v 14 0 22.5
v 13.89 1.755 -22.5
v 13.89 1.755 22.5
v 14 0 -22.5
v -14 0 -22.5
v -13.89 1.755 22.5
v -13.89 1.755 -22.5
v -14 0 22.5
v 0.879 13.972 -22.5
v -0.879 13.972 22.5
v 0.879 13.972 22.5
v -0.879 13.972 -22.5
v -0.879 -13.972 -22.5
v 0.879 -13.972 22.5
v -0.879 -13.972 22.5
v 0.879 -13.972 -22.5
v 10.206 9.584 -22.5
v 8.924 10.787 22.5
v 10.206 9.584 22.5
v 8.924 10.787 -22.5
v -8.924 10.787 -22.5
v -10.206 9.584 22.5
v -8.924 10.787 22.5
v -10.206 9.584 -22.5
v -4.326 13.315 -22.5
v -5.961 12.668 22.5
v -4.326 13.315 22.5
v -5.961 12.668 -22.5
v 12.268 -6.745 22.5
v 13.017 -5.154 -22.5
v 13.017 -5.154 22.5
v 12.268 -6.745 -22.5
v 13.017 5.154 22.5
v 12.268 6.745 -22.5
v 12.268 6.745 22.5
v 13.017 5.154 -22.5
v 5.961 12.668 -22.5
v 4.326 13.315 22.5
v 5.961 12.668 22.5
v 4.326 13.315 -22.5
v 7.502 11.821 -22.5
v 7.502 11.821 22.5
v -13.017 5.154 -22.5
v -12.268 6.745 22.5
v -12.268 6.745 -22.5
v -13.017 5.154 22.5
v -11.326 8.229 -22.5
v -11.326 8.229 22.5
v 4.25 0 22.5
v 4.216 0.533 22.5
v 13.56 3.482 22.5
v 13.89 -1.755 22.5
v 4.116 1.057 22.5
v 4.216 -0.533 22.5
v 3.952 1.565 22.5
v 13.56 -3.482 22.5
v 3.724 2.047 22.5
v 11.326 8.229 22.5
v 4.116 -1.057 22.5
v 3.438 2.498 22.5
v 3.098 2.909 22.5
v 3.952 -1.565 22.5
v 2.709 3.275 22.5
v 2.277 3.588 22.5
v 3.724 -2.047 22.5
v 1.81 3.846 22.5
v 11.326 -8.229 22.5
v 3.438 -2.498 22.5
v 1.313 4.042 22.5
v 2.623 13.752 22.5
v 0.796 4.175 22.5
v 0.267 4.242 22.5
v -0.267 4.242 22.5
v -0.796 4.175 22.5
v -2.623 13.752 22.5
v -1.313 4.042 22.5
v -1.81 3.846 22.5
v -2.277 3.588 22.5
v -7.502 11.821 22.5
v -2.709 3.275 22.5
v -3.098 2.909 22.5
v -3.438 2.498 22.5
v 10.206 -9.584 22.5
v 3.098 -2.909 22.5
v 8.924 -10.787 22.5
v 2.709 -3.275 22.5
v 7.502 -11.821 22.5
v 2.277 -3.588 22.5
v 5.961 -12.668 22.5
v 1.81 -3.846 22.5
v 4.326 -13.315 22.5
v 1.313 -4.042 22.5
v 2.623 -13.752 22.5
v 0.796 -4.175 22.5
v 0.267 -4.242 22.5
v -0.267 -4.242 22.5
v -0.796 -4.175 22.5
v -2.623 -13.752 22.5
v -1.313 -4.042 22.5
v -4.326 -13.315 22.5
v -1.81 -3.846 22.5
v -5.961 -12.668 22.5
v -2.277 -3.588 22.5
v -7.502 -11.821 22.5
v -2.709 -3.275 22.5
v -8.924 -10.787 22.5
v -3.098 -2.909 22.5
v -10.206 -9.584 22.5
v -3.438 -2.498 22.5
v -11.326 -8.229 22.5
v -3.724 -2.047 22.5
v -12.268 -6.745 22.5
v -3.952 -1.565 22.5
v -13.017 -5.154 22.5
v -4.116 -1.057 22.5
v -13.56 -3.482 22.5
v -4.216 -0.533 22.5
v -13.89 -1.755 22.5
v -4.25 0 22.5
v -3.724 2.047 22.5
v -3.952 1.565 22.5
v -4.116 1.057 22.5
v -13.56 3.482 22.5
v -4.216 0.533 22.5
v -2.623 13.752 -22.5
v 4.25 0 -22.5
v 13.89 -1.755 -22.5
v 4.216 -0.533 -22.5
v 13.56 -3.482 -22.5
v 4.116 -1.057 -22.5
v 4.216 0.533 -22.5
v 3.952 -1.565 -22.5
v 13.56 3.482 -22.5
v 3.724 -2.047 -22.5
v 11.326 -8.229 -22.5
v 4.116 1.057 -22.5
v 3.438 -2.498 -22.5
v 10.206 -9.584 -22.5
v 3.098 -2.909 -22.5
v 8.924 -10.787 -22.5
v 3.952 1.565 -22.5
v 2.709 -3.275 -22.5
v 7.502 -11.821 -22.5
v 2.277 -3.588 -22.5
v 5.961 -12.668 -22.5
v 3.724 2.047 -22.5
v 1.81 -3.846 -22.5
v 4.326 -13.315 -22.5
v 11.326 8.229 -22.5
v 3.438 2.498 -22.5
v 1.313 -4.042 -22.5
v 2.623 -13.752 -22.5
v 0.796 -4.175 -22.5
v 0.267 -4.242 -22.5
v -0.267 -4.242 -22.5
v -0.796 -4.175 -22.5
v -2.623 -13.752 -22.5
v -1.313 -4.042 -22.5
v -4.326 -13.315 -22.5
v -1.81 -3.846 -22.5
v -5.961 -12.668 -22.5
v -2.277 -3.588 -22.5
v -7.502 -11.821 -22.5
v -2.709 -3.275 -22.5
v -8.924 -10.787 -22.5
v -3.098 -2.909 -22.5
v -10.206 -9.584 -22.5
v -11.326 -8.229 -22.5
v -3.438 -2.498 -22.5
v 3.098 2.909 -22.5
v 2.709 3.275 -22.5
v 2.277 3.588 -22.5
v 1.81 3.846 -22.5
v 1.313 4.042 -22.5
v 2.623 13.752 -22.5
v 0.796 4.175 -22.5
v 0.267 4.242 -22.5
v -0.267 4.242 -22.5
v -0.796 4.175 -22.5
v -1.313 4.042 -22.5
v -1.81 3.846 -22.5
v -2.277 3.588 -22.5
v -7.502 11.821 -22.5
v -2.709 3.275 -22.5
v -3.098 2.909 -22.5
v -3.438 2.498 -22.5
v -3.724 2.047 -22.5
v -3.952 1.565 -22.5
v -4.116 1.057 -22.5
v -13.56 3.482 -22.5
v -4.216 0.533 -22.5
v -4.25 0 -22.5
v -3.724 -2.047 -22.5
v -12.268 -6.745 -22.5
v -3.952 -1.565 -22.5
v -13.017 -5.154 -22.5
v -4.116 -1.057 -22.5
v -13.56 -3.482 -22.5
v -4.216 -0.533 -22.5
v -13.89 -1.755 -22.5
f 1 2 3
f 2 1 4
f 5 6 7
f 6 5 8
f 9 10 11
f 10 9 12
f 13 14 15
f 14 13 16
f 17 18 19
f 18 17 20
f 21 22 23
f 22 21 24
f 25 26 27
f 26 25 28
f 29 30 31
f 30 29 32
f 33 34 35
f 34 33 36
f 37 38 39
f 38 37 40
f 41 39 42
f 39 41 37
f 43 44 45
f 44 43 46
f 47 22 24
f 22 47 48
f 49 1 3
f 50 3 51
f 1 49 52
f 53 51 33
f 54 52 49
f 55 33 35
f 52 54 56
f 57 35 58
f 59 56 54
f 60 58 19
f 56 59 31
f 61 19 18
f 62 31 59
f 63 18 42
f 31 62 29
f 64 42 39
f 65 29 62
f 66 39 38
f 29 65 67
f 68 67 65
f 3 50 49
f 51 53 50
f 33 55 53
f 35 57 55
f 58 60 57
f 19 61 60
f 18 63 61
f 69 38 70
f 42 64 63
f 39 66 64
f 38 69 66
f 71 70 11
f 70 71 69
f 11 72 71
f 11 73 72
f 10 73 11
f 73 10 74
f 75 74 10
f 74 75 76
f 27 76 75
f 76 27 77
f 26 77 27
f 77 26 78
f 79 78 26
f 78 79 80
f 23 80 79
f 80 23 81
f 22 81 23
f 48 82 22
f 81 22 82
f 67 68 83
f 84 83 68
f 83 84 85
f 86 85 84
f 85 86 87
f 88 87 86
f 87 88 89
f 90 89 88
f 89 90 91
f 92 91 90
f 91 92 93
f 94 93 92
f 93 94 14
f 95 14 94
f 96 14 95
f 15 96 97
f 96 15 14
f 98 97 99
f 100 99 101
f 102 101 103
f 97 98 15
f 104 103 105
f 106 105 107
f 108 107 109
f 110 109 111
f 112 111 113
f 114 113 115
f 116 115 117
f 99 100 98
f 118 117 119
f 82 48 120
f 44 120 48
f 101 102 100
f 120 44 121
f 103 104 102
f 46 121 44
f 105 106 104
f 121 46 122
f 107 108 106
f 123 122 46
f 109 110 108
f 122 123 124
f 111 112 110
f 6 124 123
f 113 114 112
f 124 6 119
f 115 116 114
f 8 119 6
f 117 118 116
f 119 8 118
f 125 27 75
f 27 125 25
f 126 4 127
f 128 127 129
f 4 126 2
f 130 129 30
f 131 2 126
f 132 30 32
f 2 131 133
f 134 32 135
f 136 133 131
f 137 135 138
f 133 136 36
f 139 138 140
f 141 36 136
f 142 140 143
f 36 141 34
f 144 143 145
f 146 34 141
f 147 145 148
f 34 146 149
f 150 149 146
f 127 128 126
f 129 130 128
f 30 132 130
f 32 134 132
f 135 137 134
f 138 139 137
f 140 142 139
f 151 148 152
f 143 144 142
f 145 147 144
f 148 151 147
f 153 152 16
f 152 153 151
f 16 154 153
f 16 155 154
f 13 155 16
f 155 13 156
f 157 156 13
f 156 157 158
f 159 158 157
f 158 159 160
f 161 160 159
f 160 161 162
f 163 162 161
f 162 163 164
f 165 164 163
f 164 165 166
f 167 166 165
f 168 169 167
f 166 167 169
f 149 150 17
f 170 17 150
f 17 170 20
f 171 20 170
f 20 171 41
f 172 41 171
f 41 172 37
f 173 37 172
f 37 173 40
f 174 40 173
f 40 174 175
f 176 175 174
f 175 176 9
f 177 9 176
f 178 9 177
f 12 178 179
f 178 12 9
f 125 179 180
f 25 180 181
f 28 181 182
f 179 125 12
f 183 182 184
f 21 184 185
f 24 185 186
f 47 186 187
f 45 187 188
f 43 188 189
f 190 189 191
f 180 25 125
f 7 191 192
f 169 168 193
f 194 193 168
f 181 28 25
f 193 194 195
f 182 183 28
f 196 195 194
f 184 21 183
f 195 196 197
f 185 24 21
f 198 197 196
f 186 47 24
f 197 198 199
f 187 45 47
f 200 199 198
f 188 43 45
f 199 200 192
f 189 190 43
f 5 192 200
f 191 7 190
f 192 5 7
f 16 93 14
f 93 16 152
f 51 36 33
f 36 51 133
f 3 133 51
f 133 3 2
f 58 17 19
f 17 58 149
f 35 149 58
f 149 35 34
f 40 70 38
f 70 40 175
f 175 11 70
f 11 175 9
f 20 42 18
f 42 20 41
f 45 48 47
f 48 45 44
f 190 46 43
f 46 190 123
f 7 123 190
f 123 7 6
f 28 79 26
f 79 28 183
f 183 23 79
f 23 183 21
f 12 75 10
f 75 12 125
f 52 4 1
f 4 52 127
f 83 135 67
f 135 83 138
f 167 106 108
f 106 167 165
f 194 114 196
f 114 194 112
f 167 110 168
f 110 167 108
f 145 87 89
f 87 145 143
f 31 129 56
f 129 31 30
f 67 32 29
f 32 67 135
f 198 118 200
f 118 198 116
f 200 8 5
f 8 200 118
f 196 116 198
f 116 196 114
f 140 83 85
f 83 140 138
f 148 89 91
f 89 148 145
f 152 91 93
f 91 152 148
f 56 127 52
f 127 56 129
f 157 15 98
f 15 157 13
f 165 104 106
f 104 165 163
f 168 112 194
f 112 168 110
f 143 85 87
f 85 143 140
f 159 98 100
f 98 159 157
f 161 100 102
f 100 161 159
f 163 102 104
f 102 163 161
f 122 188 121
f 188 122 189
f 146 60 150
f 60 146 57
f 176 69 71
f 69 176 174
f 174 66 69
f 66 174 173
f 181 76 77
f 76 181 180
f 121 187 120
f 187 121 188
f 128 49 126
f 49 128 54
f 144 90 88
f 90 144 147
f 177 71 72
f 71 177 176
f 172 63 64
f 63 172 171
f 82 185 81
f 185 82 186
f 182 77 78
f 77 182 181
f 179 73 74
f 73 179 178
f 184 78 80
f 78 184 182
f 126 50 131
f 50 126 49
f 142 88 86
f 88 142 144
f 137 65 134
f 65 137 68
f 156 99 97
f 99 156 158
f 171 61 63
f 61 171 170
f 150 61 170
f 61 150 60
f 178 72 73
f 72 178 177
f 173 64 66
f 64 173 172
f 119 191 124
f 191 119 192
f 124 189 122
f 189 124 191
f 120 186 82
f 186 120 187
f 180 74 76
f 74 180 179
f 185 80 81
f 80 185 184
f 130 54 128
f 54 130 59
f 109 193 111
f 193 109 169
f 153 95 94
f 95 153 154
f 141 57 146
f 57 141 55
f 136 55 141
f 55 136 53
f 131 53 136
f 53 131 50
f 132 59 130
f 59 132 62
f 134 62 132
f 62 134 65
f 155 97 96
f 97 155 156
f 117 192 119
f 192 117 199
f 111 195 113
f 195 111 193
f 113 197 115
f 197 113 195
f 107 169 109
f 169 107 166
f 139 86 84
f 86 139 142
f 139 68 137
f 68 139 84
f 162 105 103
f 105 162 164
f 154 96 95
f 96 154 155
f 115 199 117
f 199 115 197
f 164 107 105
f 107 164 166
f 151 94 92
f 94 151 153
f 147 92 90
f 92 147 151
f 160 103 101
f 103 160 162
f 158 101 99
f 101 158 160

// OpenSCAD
$fn = 50;


difference() {
	union() {
		translate(v = [0, 0, -22.5000000000]) {
			cylinder(h = 45, r = 14.0000000000);
		}
	}
	union() {
		translate(v = [0, 0, -100.0000000000]) {
			cylinder(h = 200, r = 4.2500000000);
		}
	}
}
